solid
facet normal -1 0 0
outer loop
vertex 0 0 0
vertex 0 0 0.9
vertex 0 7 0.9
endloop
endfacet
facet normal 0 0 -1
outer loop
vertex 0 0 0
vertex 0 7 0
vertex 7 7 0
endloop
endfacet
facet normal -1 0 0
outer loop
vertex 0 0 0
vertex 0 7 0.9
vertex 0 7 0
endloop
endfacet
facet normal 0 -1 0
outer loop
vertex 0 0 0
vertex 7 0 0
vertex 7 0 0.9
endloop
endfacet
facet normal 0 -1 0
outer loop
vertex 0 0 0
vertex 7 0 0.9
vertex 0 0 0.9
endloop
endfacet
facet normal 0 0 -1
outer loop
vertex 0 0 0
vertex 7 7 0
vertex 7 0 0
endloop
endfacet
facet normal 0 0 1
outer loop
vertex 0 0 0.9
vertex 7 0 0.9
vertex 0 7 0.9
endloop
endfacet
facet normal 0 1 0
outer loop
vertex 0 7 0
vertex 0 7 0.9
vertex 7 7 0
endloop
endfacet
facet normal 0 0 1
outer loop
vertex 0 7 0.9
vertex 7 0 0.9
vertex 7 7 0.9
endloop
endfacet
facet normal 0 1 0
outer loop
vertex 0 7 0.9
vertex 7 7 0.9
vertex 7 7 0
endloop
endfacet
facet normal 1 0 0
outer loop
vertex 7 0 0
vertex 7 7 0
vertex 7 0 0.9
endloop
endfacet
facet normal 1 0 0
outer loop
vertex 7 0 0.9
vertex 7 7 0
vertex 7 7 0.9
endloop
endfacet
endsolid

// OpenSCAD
/* Warning, this is a very basic generator with a lot of approximation 
input data : [VQFN, PGA, 7x7x0.9mm, 44, , A, C04-01213A]
generated by com.zoubworld.electronics.cad.model3d.Basic
Date : Sun Feb 15 10:50:49 CET 2026
*/

//body
color("black")
translate([0,0,0])
cube([7.0,7.0,0.9], center=false);
